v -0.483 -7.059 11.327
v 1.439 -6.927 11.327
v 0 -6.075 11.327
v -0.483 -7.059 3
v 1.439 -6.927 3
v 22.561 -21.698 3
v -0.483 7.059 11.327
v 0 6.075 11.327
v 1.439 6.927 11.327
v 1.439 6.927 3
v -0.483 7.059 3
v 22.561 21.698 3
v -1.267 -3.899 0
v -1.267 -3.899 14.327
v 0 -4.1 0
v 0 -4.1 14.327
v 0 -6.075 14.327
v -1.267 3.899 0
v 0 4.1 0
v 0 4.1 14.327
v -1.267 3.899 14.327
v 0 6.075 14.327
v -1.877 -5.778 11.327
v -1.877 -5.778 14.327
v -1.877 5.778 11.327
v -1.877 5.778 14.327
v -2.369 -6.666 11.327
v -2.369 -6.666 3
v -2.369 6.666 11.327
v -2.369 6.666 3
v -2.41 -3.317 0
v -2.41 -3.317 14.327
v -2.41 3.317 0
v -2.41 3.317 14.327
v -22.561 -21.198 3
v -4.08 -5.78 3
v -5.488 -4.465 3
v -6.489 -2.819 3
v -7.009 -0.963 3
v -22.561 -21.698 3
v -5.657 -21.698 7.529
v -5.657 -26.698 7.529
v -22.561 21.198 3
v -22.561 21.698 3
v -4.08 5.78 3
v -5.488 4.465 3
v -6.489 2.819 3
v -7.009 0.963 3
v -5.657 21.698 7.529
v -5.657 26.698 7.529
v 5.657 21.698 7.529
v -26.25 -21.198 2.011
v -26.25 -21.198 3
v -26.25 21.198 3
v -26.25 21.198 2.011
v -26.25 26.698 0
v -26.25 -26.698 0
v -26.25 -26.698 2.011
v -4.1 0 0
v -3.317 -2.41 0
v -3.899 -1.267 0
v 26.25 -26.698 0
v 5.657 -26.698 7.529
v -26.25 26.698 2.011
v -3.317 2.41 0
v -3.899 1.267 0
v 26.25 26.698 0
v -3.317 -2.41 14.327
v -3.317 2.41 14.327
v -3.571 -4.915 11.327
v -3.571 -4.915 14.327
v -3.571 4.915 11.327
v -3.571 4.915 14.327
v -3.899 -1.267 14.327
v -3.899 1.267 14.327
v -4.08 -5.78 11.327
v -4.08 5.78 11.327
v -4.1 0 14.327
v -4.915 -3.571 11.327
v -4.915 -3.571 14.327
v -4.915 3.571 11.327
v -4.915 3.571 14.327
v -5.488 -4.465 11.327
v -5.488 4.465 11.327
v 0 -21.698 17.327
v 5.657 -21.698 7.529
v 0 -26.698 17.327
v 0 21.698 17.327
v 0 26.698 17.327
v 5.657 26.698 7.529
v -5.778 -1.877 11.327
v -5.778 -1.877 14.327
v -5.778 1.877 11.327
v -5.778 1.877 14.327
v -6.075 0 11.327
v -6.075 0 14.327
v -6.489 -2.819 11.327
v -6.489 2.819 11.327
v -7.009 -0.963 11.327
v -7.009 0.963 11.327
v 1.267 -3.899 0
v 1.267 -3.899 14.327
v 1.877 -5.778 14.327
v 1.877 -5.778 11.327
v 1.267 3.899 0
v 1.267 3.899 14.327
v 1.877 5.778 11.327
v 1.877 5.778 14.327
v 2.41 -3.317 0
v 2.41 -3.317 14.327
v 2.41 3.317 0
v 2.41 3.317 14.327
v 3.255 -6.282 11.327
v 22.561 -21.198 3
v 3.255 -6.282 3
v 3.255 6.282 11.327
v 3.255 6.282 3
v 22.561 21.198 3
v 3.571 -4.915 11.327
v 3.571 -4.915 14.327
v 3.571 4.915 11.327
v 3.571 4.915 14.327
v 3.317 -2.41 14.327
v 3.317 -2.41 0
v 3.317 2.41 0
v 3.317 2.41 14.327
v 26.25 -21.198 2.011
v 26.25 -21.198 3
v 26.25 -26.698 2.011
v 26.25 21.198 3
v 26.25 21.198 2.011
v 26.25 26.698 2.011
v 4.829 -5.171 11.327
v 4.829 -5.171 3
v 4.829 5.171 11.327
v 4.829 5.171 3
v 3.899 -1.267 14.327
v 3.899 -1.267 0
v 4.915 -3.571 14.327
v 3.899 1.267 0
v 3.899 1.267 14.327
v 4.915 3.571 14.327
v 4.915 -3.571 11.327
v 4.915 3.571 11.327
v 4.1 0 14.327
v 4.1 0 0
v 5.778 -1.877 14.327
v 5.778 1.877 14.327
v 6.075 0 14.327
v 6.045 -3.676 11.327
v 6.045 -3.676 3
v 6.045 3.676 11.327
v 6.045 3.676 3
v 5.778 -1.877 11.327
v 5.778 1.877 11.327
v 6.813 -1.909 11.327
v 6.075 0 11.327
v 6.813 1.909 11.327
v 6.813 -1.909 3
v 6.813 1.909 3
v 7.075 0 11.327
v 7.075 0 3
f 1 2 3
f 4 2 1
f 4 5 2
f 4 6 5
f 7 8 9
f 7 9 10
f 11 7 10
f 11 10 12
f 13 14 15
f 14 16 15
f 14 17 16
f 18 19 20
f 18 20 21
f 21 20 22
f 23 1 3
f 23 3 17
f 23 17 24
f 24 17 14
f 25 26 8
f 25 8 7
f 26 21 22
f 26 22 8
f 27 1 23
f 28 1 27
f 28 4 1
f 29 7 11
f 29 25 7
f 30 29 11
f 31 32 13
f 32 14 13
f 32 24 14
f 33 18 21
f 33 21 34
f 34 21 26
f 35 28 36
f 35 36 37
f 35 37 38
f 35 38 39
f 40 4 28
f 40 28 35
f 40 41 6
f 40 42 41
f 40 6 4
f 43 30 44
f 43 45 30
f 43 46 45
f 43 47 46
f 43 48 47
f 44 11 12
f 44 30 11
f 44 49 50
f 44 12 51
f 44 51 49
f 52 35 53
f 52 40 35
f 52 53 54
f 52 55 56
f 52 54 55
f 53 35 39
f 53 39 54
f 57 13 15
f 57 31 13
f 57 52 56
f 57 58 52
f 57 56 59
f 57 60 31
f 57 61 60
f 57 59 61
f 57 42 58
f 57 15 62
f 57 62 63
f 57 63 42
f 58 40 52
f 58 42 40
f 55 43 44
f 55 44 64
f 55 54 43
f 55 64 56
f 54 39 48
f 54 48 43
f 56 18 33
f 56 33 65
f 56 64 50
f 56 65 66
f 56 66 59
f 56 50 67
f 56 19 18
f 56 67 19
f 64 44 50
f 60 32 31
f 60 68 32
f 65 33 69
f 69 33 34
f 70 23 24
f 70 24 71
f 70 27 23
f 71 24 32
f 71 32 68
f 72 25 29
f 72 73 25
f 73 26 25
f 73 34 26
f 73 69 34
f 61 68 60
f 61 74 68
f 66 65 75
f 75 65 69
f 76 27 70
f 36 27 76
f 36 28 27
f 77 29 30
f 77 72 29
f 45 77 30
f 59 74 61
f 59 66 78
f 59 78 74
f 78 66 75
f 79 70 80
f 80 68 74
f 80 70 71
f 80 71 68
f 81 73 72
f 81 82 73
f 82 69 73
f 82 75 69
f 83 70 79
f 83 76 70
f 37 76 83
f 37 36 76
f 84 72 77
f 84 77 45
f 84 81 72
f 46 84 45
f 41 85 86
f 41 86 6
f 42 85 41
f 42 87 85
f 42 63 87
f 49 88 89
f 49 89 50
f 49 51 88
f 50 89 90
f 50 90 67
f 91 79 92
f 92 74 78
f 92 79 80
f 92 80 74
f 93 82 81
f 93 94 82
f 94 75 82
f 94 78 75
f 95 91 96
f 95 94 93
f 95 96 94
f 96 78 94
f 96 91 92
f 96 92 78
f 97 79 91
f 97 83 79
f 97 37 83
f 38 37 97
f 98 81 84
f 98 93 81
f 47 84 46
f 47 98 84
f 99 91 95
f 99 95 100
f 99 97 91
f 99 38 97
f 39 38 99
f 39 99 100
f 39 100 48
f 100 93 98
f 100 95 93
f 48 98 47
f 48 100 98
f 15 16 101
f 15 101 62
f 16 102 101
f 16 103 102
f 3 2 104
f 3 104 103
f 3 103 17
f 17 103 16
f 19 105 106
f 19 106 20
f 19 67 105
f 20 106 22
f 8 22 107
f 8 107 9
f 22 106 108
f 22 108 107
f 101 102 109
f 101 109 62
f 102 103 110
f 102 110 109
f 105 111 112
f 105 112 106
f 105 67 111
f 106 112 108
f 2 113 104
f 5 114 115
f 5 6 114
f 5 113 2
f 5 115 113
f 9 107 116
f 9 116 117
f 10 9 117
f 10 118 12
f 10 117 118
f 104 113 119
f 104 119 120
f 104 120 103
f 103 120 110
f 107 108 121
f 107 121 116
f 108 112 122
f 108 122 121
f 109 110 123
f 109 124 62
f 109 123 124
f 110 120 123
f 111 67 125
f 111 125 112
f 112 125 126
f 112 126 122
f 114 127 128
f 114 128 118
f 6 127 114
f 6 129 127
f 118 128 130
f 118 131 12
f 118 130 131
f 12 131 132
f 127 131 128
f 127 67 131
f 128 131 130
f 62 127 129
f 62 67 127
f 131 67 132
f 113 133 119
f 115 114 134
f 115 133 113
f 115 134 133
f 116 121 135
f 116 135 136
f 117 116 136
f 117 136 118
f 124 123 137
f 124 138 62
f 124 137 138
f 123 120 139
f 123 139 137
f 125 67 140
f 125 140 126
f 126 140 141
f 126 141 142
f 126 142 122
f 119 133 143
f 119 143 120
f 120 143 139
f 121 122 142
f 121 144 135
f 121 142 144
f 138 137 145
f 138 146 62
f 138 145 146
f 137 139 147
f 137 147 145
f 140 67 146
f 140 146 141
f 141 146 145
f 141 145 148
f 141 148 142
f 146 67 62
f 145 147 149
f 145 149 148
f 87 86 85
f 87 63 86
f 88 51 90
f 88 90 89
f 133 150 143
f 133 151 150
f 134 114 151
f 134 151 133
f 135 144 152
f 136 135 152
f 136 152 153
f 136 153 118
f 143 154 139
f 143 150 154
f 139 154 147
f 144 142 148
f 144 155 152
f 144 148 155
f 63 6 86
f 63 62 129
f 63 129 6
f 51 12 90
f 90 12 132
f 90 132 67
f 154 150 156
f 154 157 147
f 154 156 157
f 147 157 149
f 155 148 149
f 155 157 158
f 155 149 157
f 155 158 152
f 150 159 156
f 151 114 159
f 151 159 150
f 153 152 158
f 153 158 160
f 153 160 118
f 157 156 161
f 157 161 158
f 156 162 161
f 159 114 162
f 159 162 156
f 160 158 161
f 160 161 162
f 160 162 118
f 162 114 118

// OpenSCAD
// file: rotorhead_kardan_centerpart.scad
include <../parameters.scad>

//kloub stredná časť
module rotorhead_kardan_center_part() {
    a=60;
    b=14;

    outer_x = inner_x + 2*brit_width;
    outer_y = inner_y + 2*brit_width;
    outer_height = wall_height + plate_thickness;
    
    difference(){     
        translate ([0,0,outer_height/2]) {
            cube([outer_x,outer_y,outer_height],center = true);
            }
        translate([0,0,wall_height + plate_thickness]){
            cube([inner_x,inner_y,wall_height*2],center = true);
            }
        hull() {
            translate([-(inner_x/2 - hole_r),0,-outer_height]) {
                cylinder (h=outer_height*4, r=hole_r,$fn = 100);
                }
            translate([inner_x/2 - hole_r,0,-outer_height]) {
                cylinder (h=outer_height*4, r=hole_r,$fn = 100);
                }
            }
        translate([0,0,(a * sqrt(2) / 2) + plate_thickness+wall_height/2]) {
                rotate ([45,0,0]) {
                    cube([2*inner_x + 2 * brit_width, a,a],center=true);
                    }
                } 
        translate([0,-b/2-inner_y/2+kardan_clearance,-(b * sqrt(2) / 2) + plate_thickness+wall_height/2]){
            rotate ([0,45,0]){
                cube(b,center=true);
                }
            }
        translate([0,b/2+inner_y/2-kardan_clearance,-(b * sqrt(2) / 2) + plate_thickness+wall_height/2]){
            rotate ([0,45,0]){
                cube(b,center=true);
                }
            }           
        }
    }

rotorhead_kardan_center_part();
// main file
include <../parameters.scad>
use <./rotorhead_kardan_centerpart.scad>


draft=true;

module brit_oposit(lenght)
{
    ax_dst=wall_height/2+plate_thickness;

    difference(){
        translate([0,0,lenght/2-ax_dst])
            cube([lenght,brit_width+kardan_clearance,lenght], center=true);
        translate([0,0,-2*ax_dst/2*sqrt(2)])
            rotate([0,45,0])
                cube(2*ax_dst, center=true);
            
        } 
}

module rotorhead_kardan_top_testpart() {
    
    topplate_thickness=3;
    topplate_x=(inner_x+2*brit_width);
    topplate_y=inner_y+2*brit_width;
    rotor_ax_neck_diameter=bearing_d+2;
    rotor_ax_neck_height=top_brit_height-(bearing_efsm_12_ag-bearing_a_center_of_rotation);
    rotor_ax_bearing_ring_h=3;
    
    rotor_axis_diameter = 8.2;
    
    
    difference(){
        union(){
            translate([0,0,topplate_thickness/2])
                cube([topplate_x,topplate_y,topplate_thickness], center=true);
            
            translate([0,(topplate_y-brit_width)/2,topplate_thickness+top_brit_height/2])
                cube([topplate_x,brit_width,top_brit_height], center=true);
            
            
            translate([0,-(topplate_y-brit_width)/2,topplate_thickness+top_brit_height/2])
                cube([topplate_x,brit_width,top_brit_height], center=true);
            
            //ax_neck         
            translate([0, 0,topplate_thickness ])
                 cylinder(d = rotor_ax_neck_diameter , h = rotor_ax_neck_height);
            //bearing ring
            translate([0, 0,topplate_thickness ])
                 cylinder(d = bearing_d , h = rotor_ax_neck_height+rotor_ax_bearing_ring_h);
            }
        //otvor pro sroub rotoru
        translate([0, 0, -(rotor_ax_neck_height+rotor_ax_bearing_ring_h)/2])
            cylinder(d = rotor_axis_diameter, h = 2*(rotor_ax_neck_height+rotor_ax_bearing_ring_h), $fn = draft ? 20 : 80);
        
        //brity 
        translate([0,(inner_y+brit_width)/2,topplate_thickness+top_brit_height])
            rotate([0,pitch_stop,0])
                    brit_oposit(2*topplate_x);
            
        translate([0,(inner_y+brit_width)/2,topplate_thickness+top_brit_height])
            rotate([0,-pitch_stop,0])
                    brit_oposit(2*topplate_x);
            
        translate([0,-(inner_y+brit_width)/2,topplate_thickness+top_brit_height])
            rotate([0,pitch_stop,0])
                    brit_oposit(2*topplate_x);
            
        translate([0,-(inner_y+brit_width)/2,topplate_thickness+top_brit_height])
            rotate([0,-pitch_stop,0])
                    brit_oposit(2*topplate_x); 
            
        }


    }
    
    rotorhead_kardan_top_testpart();
